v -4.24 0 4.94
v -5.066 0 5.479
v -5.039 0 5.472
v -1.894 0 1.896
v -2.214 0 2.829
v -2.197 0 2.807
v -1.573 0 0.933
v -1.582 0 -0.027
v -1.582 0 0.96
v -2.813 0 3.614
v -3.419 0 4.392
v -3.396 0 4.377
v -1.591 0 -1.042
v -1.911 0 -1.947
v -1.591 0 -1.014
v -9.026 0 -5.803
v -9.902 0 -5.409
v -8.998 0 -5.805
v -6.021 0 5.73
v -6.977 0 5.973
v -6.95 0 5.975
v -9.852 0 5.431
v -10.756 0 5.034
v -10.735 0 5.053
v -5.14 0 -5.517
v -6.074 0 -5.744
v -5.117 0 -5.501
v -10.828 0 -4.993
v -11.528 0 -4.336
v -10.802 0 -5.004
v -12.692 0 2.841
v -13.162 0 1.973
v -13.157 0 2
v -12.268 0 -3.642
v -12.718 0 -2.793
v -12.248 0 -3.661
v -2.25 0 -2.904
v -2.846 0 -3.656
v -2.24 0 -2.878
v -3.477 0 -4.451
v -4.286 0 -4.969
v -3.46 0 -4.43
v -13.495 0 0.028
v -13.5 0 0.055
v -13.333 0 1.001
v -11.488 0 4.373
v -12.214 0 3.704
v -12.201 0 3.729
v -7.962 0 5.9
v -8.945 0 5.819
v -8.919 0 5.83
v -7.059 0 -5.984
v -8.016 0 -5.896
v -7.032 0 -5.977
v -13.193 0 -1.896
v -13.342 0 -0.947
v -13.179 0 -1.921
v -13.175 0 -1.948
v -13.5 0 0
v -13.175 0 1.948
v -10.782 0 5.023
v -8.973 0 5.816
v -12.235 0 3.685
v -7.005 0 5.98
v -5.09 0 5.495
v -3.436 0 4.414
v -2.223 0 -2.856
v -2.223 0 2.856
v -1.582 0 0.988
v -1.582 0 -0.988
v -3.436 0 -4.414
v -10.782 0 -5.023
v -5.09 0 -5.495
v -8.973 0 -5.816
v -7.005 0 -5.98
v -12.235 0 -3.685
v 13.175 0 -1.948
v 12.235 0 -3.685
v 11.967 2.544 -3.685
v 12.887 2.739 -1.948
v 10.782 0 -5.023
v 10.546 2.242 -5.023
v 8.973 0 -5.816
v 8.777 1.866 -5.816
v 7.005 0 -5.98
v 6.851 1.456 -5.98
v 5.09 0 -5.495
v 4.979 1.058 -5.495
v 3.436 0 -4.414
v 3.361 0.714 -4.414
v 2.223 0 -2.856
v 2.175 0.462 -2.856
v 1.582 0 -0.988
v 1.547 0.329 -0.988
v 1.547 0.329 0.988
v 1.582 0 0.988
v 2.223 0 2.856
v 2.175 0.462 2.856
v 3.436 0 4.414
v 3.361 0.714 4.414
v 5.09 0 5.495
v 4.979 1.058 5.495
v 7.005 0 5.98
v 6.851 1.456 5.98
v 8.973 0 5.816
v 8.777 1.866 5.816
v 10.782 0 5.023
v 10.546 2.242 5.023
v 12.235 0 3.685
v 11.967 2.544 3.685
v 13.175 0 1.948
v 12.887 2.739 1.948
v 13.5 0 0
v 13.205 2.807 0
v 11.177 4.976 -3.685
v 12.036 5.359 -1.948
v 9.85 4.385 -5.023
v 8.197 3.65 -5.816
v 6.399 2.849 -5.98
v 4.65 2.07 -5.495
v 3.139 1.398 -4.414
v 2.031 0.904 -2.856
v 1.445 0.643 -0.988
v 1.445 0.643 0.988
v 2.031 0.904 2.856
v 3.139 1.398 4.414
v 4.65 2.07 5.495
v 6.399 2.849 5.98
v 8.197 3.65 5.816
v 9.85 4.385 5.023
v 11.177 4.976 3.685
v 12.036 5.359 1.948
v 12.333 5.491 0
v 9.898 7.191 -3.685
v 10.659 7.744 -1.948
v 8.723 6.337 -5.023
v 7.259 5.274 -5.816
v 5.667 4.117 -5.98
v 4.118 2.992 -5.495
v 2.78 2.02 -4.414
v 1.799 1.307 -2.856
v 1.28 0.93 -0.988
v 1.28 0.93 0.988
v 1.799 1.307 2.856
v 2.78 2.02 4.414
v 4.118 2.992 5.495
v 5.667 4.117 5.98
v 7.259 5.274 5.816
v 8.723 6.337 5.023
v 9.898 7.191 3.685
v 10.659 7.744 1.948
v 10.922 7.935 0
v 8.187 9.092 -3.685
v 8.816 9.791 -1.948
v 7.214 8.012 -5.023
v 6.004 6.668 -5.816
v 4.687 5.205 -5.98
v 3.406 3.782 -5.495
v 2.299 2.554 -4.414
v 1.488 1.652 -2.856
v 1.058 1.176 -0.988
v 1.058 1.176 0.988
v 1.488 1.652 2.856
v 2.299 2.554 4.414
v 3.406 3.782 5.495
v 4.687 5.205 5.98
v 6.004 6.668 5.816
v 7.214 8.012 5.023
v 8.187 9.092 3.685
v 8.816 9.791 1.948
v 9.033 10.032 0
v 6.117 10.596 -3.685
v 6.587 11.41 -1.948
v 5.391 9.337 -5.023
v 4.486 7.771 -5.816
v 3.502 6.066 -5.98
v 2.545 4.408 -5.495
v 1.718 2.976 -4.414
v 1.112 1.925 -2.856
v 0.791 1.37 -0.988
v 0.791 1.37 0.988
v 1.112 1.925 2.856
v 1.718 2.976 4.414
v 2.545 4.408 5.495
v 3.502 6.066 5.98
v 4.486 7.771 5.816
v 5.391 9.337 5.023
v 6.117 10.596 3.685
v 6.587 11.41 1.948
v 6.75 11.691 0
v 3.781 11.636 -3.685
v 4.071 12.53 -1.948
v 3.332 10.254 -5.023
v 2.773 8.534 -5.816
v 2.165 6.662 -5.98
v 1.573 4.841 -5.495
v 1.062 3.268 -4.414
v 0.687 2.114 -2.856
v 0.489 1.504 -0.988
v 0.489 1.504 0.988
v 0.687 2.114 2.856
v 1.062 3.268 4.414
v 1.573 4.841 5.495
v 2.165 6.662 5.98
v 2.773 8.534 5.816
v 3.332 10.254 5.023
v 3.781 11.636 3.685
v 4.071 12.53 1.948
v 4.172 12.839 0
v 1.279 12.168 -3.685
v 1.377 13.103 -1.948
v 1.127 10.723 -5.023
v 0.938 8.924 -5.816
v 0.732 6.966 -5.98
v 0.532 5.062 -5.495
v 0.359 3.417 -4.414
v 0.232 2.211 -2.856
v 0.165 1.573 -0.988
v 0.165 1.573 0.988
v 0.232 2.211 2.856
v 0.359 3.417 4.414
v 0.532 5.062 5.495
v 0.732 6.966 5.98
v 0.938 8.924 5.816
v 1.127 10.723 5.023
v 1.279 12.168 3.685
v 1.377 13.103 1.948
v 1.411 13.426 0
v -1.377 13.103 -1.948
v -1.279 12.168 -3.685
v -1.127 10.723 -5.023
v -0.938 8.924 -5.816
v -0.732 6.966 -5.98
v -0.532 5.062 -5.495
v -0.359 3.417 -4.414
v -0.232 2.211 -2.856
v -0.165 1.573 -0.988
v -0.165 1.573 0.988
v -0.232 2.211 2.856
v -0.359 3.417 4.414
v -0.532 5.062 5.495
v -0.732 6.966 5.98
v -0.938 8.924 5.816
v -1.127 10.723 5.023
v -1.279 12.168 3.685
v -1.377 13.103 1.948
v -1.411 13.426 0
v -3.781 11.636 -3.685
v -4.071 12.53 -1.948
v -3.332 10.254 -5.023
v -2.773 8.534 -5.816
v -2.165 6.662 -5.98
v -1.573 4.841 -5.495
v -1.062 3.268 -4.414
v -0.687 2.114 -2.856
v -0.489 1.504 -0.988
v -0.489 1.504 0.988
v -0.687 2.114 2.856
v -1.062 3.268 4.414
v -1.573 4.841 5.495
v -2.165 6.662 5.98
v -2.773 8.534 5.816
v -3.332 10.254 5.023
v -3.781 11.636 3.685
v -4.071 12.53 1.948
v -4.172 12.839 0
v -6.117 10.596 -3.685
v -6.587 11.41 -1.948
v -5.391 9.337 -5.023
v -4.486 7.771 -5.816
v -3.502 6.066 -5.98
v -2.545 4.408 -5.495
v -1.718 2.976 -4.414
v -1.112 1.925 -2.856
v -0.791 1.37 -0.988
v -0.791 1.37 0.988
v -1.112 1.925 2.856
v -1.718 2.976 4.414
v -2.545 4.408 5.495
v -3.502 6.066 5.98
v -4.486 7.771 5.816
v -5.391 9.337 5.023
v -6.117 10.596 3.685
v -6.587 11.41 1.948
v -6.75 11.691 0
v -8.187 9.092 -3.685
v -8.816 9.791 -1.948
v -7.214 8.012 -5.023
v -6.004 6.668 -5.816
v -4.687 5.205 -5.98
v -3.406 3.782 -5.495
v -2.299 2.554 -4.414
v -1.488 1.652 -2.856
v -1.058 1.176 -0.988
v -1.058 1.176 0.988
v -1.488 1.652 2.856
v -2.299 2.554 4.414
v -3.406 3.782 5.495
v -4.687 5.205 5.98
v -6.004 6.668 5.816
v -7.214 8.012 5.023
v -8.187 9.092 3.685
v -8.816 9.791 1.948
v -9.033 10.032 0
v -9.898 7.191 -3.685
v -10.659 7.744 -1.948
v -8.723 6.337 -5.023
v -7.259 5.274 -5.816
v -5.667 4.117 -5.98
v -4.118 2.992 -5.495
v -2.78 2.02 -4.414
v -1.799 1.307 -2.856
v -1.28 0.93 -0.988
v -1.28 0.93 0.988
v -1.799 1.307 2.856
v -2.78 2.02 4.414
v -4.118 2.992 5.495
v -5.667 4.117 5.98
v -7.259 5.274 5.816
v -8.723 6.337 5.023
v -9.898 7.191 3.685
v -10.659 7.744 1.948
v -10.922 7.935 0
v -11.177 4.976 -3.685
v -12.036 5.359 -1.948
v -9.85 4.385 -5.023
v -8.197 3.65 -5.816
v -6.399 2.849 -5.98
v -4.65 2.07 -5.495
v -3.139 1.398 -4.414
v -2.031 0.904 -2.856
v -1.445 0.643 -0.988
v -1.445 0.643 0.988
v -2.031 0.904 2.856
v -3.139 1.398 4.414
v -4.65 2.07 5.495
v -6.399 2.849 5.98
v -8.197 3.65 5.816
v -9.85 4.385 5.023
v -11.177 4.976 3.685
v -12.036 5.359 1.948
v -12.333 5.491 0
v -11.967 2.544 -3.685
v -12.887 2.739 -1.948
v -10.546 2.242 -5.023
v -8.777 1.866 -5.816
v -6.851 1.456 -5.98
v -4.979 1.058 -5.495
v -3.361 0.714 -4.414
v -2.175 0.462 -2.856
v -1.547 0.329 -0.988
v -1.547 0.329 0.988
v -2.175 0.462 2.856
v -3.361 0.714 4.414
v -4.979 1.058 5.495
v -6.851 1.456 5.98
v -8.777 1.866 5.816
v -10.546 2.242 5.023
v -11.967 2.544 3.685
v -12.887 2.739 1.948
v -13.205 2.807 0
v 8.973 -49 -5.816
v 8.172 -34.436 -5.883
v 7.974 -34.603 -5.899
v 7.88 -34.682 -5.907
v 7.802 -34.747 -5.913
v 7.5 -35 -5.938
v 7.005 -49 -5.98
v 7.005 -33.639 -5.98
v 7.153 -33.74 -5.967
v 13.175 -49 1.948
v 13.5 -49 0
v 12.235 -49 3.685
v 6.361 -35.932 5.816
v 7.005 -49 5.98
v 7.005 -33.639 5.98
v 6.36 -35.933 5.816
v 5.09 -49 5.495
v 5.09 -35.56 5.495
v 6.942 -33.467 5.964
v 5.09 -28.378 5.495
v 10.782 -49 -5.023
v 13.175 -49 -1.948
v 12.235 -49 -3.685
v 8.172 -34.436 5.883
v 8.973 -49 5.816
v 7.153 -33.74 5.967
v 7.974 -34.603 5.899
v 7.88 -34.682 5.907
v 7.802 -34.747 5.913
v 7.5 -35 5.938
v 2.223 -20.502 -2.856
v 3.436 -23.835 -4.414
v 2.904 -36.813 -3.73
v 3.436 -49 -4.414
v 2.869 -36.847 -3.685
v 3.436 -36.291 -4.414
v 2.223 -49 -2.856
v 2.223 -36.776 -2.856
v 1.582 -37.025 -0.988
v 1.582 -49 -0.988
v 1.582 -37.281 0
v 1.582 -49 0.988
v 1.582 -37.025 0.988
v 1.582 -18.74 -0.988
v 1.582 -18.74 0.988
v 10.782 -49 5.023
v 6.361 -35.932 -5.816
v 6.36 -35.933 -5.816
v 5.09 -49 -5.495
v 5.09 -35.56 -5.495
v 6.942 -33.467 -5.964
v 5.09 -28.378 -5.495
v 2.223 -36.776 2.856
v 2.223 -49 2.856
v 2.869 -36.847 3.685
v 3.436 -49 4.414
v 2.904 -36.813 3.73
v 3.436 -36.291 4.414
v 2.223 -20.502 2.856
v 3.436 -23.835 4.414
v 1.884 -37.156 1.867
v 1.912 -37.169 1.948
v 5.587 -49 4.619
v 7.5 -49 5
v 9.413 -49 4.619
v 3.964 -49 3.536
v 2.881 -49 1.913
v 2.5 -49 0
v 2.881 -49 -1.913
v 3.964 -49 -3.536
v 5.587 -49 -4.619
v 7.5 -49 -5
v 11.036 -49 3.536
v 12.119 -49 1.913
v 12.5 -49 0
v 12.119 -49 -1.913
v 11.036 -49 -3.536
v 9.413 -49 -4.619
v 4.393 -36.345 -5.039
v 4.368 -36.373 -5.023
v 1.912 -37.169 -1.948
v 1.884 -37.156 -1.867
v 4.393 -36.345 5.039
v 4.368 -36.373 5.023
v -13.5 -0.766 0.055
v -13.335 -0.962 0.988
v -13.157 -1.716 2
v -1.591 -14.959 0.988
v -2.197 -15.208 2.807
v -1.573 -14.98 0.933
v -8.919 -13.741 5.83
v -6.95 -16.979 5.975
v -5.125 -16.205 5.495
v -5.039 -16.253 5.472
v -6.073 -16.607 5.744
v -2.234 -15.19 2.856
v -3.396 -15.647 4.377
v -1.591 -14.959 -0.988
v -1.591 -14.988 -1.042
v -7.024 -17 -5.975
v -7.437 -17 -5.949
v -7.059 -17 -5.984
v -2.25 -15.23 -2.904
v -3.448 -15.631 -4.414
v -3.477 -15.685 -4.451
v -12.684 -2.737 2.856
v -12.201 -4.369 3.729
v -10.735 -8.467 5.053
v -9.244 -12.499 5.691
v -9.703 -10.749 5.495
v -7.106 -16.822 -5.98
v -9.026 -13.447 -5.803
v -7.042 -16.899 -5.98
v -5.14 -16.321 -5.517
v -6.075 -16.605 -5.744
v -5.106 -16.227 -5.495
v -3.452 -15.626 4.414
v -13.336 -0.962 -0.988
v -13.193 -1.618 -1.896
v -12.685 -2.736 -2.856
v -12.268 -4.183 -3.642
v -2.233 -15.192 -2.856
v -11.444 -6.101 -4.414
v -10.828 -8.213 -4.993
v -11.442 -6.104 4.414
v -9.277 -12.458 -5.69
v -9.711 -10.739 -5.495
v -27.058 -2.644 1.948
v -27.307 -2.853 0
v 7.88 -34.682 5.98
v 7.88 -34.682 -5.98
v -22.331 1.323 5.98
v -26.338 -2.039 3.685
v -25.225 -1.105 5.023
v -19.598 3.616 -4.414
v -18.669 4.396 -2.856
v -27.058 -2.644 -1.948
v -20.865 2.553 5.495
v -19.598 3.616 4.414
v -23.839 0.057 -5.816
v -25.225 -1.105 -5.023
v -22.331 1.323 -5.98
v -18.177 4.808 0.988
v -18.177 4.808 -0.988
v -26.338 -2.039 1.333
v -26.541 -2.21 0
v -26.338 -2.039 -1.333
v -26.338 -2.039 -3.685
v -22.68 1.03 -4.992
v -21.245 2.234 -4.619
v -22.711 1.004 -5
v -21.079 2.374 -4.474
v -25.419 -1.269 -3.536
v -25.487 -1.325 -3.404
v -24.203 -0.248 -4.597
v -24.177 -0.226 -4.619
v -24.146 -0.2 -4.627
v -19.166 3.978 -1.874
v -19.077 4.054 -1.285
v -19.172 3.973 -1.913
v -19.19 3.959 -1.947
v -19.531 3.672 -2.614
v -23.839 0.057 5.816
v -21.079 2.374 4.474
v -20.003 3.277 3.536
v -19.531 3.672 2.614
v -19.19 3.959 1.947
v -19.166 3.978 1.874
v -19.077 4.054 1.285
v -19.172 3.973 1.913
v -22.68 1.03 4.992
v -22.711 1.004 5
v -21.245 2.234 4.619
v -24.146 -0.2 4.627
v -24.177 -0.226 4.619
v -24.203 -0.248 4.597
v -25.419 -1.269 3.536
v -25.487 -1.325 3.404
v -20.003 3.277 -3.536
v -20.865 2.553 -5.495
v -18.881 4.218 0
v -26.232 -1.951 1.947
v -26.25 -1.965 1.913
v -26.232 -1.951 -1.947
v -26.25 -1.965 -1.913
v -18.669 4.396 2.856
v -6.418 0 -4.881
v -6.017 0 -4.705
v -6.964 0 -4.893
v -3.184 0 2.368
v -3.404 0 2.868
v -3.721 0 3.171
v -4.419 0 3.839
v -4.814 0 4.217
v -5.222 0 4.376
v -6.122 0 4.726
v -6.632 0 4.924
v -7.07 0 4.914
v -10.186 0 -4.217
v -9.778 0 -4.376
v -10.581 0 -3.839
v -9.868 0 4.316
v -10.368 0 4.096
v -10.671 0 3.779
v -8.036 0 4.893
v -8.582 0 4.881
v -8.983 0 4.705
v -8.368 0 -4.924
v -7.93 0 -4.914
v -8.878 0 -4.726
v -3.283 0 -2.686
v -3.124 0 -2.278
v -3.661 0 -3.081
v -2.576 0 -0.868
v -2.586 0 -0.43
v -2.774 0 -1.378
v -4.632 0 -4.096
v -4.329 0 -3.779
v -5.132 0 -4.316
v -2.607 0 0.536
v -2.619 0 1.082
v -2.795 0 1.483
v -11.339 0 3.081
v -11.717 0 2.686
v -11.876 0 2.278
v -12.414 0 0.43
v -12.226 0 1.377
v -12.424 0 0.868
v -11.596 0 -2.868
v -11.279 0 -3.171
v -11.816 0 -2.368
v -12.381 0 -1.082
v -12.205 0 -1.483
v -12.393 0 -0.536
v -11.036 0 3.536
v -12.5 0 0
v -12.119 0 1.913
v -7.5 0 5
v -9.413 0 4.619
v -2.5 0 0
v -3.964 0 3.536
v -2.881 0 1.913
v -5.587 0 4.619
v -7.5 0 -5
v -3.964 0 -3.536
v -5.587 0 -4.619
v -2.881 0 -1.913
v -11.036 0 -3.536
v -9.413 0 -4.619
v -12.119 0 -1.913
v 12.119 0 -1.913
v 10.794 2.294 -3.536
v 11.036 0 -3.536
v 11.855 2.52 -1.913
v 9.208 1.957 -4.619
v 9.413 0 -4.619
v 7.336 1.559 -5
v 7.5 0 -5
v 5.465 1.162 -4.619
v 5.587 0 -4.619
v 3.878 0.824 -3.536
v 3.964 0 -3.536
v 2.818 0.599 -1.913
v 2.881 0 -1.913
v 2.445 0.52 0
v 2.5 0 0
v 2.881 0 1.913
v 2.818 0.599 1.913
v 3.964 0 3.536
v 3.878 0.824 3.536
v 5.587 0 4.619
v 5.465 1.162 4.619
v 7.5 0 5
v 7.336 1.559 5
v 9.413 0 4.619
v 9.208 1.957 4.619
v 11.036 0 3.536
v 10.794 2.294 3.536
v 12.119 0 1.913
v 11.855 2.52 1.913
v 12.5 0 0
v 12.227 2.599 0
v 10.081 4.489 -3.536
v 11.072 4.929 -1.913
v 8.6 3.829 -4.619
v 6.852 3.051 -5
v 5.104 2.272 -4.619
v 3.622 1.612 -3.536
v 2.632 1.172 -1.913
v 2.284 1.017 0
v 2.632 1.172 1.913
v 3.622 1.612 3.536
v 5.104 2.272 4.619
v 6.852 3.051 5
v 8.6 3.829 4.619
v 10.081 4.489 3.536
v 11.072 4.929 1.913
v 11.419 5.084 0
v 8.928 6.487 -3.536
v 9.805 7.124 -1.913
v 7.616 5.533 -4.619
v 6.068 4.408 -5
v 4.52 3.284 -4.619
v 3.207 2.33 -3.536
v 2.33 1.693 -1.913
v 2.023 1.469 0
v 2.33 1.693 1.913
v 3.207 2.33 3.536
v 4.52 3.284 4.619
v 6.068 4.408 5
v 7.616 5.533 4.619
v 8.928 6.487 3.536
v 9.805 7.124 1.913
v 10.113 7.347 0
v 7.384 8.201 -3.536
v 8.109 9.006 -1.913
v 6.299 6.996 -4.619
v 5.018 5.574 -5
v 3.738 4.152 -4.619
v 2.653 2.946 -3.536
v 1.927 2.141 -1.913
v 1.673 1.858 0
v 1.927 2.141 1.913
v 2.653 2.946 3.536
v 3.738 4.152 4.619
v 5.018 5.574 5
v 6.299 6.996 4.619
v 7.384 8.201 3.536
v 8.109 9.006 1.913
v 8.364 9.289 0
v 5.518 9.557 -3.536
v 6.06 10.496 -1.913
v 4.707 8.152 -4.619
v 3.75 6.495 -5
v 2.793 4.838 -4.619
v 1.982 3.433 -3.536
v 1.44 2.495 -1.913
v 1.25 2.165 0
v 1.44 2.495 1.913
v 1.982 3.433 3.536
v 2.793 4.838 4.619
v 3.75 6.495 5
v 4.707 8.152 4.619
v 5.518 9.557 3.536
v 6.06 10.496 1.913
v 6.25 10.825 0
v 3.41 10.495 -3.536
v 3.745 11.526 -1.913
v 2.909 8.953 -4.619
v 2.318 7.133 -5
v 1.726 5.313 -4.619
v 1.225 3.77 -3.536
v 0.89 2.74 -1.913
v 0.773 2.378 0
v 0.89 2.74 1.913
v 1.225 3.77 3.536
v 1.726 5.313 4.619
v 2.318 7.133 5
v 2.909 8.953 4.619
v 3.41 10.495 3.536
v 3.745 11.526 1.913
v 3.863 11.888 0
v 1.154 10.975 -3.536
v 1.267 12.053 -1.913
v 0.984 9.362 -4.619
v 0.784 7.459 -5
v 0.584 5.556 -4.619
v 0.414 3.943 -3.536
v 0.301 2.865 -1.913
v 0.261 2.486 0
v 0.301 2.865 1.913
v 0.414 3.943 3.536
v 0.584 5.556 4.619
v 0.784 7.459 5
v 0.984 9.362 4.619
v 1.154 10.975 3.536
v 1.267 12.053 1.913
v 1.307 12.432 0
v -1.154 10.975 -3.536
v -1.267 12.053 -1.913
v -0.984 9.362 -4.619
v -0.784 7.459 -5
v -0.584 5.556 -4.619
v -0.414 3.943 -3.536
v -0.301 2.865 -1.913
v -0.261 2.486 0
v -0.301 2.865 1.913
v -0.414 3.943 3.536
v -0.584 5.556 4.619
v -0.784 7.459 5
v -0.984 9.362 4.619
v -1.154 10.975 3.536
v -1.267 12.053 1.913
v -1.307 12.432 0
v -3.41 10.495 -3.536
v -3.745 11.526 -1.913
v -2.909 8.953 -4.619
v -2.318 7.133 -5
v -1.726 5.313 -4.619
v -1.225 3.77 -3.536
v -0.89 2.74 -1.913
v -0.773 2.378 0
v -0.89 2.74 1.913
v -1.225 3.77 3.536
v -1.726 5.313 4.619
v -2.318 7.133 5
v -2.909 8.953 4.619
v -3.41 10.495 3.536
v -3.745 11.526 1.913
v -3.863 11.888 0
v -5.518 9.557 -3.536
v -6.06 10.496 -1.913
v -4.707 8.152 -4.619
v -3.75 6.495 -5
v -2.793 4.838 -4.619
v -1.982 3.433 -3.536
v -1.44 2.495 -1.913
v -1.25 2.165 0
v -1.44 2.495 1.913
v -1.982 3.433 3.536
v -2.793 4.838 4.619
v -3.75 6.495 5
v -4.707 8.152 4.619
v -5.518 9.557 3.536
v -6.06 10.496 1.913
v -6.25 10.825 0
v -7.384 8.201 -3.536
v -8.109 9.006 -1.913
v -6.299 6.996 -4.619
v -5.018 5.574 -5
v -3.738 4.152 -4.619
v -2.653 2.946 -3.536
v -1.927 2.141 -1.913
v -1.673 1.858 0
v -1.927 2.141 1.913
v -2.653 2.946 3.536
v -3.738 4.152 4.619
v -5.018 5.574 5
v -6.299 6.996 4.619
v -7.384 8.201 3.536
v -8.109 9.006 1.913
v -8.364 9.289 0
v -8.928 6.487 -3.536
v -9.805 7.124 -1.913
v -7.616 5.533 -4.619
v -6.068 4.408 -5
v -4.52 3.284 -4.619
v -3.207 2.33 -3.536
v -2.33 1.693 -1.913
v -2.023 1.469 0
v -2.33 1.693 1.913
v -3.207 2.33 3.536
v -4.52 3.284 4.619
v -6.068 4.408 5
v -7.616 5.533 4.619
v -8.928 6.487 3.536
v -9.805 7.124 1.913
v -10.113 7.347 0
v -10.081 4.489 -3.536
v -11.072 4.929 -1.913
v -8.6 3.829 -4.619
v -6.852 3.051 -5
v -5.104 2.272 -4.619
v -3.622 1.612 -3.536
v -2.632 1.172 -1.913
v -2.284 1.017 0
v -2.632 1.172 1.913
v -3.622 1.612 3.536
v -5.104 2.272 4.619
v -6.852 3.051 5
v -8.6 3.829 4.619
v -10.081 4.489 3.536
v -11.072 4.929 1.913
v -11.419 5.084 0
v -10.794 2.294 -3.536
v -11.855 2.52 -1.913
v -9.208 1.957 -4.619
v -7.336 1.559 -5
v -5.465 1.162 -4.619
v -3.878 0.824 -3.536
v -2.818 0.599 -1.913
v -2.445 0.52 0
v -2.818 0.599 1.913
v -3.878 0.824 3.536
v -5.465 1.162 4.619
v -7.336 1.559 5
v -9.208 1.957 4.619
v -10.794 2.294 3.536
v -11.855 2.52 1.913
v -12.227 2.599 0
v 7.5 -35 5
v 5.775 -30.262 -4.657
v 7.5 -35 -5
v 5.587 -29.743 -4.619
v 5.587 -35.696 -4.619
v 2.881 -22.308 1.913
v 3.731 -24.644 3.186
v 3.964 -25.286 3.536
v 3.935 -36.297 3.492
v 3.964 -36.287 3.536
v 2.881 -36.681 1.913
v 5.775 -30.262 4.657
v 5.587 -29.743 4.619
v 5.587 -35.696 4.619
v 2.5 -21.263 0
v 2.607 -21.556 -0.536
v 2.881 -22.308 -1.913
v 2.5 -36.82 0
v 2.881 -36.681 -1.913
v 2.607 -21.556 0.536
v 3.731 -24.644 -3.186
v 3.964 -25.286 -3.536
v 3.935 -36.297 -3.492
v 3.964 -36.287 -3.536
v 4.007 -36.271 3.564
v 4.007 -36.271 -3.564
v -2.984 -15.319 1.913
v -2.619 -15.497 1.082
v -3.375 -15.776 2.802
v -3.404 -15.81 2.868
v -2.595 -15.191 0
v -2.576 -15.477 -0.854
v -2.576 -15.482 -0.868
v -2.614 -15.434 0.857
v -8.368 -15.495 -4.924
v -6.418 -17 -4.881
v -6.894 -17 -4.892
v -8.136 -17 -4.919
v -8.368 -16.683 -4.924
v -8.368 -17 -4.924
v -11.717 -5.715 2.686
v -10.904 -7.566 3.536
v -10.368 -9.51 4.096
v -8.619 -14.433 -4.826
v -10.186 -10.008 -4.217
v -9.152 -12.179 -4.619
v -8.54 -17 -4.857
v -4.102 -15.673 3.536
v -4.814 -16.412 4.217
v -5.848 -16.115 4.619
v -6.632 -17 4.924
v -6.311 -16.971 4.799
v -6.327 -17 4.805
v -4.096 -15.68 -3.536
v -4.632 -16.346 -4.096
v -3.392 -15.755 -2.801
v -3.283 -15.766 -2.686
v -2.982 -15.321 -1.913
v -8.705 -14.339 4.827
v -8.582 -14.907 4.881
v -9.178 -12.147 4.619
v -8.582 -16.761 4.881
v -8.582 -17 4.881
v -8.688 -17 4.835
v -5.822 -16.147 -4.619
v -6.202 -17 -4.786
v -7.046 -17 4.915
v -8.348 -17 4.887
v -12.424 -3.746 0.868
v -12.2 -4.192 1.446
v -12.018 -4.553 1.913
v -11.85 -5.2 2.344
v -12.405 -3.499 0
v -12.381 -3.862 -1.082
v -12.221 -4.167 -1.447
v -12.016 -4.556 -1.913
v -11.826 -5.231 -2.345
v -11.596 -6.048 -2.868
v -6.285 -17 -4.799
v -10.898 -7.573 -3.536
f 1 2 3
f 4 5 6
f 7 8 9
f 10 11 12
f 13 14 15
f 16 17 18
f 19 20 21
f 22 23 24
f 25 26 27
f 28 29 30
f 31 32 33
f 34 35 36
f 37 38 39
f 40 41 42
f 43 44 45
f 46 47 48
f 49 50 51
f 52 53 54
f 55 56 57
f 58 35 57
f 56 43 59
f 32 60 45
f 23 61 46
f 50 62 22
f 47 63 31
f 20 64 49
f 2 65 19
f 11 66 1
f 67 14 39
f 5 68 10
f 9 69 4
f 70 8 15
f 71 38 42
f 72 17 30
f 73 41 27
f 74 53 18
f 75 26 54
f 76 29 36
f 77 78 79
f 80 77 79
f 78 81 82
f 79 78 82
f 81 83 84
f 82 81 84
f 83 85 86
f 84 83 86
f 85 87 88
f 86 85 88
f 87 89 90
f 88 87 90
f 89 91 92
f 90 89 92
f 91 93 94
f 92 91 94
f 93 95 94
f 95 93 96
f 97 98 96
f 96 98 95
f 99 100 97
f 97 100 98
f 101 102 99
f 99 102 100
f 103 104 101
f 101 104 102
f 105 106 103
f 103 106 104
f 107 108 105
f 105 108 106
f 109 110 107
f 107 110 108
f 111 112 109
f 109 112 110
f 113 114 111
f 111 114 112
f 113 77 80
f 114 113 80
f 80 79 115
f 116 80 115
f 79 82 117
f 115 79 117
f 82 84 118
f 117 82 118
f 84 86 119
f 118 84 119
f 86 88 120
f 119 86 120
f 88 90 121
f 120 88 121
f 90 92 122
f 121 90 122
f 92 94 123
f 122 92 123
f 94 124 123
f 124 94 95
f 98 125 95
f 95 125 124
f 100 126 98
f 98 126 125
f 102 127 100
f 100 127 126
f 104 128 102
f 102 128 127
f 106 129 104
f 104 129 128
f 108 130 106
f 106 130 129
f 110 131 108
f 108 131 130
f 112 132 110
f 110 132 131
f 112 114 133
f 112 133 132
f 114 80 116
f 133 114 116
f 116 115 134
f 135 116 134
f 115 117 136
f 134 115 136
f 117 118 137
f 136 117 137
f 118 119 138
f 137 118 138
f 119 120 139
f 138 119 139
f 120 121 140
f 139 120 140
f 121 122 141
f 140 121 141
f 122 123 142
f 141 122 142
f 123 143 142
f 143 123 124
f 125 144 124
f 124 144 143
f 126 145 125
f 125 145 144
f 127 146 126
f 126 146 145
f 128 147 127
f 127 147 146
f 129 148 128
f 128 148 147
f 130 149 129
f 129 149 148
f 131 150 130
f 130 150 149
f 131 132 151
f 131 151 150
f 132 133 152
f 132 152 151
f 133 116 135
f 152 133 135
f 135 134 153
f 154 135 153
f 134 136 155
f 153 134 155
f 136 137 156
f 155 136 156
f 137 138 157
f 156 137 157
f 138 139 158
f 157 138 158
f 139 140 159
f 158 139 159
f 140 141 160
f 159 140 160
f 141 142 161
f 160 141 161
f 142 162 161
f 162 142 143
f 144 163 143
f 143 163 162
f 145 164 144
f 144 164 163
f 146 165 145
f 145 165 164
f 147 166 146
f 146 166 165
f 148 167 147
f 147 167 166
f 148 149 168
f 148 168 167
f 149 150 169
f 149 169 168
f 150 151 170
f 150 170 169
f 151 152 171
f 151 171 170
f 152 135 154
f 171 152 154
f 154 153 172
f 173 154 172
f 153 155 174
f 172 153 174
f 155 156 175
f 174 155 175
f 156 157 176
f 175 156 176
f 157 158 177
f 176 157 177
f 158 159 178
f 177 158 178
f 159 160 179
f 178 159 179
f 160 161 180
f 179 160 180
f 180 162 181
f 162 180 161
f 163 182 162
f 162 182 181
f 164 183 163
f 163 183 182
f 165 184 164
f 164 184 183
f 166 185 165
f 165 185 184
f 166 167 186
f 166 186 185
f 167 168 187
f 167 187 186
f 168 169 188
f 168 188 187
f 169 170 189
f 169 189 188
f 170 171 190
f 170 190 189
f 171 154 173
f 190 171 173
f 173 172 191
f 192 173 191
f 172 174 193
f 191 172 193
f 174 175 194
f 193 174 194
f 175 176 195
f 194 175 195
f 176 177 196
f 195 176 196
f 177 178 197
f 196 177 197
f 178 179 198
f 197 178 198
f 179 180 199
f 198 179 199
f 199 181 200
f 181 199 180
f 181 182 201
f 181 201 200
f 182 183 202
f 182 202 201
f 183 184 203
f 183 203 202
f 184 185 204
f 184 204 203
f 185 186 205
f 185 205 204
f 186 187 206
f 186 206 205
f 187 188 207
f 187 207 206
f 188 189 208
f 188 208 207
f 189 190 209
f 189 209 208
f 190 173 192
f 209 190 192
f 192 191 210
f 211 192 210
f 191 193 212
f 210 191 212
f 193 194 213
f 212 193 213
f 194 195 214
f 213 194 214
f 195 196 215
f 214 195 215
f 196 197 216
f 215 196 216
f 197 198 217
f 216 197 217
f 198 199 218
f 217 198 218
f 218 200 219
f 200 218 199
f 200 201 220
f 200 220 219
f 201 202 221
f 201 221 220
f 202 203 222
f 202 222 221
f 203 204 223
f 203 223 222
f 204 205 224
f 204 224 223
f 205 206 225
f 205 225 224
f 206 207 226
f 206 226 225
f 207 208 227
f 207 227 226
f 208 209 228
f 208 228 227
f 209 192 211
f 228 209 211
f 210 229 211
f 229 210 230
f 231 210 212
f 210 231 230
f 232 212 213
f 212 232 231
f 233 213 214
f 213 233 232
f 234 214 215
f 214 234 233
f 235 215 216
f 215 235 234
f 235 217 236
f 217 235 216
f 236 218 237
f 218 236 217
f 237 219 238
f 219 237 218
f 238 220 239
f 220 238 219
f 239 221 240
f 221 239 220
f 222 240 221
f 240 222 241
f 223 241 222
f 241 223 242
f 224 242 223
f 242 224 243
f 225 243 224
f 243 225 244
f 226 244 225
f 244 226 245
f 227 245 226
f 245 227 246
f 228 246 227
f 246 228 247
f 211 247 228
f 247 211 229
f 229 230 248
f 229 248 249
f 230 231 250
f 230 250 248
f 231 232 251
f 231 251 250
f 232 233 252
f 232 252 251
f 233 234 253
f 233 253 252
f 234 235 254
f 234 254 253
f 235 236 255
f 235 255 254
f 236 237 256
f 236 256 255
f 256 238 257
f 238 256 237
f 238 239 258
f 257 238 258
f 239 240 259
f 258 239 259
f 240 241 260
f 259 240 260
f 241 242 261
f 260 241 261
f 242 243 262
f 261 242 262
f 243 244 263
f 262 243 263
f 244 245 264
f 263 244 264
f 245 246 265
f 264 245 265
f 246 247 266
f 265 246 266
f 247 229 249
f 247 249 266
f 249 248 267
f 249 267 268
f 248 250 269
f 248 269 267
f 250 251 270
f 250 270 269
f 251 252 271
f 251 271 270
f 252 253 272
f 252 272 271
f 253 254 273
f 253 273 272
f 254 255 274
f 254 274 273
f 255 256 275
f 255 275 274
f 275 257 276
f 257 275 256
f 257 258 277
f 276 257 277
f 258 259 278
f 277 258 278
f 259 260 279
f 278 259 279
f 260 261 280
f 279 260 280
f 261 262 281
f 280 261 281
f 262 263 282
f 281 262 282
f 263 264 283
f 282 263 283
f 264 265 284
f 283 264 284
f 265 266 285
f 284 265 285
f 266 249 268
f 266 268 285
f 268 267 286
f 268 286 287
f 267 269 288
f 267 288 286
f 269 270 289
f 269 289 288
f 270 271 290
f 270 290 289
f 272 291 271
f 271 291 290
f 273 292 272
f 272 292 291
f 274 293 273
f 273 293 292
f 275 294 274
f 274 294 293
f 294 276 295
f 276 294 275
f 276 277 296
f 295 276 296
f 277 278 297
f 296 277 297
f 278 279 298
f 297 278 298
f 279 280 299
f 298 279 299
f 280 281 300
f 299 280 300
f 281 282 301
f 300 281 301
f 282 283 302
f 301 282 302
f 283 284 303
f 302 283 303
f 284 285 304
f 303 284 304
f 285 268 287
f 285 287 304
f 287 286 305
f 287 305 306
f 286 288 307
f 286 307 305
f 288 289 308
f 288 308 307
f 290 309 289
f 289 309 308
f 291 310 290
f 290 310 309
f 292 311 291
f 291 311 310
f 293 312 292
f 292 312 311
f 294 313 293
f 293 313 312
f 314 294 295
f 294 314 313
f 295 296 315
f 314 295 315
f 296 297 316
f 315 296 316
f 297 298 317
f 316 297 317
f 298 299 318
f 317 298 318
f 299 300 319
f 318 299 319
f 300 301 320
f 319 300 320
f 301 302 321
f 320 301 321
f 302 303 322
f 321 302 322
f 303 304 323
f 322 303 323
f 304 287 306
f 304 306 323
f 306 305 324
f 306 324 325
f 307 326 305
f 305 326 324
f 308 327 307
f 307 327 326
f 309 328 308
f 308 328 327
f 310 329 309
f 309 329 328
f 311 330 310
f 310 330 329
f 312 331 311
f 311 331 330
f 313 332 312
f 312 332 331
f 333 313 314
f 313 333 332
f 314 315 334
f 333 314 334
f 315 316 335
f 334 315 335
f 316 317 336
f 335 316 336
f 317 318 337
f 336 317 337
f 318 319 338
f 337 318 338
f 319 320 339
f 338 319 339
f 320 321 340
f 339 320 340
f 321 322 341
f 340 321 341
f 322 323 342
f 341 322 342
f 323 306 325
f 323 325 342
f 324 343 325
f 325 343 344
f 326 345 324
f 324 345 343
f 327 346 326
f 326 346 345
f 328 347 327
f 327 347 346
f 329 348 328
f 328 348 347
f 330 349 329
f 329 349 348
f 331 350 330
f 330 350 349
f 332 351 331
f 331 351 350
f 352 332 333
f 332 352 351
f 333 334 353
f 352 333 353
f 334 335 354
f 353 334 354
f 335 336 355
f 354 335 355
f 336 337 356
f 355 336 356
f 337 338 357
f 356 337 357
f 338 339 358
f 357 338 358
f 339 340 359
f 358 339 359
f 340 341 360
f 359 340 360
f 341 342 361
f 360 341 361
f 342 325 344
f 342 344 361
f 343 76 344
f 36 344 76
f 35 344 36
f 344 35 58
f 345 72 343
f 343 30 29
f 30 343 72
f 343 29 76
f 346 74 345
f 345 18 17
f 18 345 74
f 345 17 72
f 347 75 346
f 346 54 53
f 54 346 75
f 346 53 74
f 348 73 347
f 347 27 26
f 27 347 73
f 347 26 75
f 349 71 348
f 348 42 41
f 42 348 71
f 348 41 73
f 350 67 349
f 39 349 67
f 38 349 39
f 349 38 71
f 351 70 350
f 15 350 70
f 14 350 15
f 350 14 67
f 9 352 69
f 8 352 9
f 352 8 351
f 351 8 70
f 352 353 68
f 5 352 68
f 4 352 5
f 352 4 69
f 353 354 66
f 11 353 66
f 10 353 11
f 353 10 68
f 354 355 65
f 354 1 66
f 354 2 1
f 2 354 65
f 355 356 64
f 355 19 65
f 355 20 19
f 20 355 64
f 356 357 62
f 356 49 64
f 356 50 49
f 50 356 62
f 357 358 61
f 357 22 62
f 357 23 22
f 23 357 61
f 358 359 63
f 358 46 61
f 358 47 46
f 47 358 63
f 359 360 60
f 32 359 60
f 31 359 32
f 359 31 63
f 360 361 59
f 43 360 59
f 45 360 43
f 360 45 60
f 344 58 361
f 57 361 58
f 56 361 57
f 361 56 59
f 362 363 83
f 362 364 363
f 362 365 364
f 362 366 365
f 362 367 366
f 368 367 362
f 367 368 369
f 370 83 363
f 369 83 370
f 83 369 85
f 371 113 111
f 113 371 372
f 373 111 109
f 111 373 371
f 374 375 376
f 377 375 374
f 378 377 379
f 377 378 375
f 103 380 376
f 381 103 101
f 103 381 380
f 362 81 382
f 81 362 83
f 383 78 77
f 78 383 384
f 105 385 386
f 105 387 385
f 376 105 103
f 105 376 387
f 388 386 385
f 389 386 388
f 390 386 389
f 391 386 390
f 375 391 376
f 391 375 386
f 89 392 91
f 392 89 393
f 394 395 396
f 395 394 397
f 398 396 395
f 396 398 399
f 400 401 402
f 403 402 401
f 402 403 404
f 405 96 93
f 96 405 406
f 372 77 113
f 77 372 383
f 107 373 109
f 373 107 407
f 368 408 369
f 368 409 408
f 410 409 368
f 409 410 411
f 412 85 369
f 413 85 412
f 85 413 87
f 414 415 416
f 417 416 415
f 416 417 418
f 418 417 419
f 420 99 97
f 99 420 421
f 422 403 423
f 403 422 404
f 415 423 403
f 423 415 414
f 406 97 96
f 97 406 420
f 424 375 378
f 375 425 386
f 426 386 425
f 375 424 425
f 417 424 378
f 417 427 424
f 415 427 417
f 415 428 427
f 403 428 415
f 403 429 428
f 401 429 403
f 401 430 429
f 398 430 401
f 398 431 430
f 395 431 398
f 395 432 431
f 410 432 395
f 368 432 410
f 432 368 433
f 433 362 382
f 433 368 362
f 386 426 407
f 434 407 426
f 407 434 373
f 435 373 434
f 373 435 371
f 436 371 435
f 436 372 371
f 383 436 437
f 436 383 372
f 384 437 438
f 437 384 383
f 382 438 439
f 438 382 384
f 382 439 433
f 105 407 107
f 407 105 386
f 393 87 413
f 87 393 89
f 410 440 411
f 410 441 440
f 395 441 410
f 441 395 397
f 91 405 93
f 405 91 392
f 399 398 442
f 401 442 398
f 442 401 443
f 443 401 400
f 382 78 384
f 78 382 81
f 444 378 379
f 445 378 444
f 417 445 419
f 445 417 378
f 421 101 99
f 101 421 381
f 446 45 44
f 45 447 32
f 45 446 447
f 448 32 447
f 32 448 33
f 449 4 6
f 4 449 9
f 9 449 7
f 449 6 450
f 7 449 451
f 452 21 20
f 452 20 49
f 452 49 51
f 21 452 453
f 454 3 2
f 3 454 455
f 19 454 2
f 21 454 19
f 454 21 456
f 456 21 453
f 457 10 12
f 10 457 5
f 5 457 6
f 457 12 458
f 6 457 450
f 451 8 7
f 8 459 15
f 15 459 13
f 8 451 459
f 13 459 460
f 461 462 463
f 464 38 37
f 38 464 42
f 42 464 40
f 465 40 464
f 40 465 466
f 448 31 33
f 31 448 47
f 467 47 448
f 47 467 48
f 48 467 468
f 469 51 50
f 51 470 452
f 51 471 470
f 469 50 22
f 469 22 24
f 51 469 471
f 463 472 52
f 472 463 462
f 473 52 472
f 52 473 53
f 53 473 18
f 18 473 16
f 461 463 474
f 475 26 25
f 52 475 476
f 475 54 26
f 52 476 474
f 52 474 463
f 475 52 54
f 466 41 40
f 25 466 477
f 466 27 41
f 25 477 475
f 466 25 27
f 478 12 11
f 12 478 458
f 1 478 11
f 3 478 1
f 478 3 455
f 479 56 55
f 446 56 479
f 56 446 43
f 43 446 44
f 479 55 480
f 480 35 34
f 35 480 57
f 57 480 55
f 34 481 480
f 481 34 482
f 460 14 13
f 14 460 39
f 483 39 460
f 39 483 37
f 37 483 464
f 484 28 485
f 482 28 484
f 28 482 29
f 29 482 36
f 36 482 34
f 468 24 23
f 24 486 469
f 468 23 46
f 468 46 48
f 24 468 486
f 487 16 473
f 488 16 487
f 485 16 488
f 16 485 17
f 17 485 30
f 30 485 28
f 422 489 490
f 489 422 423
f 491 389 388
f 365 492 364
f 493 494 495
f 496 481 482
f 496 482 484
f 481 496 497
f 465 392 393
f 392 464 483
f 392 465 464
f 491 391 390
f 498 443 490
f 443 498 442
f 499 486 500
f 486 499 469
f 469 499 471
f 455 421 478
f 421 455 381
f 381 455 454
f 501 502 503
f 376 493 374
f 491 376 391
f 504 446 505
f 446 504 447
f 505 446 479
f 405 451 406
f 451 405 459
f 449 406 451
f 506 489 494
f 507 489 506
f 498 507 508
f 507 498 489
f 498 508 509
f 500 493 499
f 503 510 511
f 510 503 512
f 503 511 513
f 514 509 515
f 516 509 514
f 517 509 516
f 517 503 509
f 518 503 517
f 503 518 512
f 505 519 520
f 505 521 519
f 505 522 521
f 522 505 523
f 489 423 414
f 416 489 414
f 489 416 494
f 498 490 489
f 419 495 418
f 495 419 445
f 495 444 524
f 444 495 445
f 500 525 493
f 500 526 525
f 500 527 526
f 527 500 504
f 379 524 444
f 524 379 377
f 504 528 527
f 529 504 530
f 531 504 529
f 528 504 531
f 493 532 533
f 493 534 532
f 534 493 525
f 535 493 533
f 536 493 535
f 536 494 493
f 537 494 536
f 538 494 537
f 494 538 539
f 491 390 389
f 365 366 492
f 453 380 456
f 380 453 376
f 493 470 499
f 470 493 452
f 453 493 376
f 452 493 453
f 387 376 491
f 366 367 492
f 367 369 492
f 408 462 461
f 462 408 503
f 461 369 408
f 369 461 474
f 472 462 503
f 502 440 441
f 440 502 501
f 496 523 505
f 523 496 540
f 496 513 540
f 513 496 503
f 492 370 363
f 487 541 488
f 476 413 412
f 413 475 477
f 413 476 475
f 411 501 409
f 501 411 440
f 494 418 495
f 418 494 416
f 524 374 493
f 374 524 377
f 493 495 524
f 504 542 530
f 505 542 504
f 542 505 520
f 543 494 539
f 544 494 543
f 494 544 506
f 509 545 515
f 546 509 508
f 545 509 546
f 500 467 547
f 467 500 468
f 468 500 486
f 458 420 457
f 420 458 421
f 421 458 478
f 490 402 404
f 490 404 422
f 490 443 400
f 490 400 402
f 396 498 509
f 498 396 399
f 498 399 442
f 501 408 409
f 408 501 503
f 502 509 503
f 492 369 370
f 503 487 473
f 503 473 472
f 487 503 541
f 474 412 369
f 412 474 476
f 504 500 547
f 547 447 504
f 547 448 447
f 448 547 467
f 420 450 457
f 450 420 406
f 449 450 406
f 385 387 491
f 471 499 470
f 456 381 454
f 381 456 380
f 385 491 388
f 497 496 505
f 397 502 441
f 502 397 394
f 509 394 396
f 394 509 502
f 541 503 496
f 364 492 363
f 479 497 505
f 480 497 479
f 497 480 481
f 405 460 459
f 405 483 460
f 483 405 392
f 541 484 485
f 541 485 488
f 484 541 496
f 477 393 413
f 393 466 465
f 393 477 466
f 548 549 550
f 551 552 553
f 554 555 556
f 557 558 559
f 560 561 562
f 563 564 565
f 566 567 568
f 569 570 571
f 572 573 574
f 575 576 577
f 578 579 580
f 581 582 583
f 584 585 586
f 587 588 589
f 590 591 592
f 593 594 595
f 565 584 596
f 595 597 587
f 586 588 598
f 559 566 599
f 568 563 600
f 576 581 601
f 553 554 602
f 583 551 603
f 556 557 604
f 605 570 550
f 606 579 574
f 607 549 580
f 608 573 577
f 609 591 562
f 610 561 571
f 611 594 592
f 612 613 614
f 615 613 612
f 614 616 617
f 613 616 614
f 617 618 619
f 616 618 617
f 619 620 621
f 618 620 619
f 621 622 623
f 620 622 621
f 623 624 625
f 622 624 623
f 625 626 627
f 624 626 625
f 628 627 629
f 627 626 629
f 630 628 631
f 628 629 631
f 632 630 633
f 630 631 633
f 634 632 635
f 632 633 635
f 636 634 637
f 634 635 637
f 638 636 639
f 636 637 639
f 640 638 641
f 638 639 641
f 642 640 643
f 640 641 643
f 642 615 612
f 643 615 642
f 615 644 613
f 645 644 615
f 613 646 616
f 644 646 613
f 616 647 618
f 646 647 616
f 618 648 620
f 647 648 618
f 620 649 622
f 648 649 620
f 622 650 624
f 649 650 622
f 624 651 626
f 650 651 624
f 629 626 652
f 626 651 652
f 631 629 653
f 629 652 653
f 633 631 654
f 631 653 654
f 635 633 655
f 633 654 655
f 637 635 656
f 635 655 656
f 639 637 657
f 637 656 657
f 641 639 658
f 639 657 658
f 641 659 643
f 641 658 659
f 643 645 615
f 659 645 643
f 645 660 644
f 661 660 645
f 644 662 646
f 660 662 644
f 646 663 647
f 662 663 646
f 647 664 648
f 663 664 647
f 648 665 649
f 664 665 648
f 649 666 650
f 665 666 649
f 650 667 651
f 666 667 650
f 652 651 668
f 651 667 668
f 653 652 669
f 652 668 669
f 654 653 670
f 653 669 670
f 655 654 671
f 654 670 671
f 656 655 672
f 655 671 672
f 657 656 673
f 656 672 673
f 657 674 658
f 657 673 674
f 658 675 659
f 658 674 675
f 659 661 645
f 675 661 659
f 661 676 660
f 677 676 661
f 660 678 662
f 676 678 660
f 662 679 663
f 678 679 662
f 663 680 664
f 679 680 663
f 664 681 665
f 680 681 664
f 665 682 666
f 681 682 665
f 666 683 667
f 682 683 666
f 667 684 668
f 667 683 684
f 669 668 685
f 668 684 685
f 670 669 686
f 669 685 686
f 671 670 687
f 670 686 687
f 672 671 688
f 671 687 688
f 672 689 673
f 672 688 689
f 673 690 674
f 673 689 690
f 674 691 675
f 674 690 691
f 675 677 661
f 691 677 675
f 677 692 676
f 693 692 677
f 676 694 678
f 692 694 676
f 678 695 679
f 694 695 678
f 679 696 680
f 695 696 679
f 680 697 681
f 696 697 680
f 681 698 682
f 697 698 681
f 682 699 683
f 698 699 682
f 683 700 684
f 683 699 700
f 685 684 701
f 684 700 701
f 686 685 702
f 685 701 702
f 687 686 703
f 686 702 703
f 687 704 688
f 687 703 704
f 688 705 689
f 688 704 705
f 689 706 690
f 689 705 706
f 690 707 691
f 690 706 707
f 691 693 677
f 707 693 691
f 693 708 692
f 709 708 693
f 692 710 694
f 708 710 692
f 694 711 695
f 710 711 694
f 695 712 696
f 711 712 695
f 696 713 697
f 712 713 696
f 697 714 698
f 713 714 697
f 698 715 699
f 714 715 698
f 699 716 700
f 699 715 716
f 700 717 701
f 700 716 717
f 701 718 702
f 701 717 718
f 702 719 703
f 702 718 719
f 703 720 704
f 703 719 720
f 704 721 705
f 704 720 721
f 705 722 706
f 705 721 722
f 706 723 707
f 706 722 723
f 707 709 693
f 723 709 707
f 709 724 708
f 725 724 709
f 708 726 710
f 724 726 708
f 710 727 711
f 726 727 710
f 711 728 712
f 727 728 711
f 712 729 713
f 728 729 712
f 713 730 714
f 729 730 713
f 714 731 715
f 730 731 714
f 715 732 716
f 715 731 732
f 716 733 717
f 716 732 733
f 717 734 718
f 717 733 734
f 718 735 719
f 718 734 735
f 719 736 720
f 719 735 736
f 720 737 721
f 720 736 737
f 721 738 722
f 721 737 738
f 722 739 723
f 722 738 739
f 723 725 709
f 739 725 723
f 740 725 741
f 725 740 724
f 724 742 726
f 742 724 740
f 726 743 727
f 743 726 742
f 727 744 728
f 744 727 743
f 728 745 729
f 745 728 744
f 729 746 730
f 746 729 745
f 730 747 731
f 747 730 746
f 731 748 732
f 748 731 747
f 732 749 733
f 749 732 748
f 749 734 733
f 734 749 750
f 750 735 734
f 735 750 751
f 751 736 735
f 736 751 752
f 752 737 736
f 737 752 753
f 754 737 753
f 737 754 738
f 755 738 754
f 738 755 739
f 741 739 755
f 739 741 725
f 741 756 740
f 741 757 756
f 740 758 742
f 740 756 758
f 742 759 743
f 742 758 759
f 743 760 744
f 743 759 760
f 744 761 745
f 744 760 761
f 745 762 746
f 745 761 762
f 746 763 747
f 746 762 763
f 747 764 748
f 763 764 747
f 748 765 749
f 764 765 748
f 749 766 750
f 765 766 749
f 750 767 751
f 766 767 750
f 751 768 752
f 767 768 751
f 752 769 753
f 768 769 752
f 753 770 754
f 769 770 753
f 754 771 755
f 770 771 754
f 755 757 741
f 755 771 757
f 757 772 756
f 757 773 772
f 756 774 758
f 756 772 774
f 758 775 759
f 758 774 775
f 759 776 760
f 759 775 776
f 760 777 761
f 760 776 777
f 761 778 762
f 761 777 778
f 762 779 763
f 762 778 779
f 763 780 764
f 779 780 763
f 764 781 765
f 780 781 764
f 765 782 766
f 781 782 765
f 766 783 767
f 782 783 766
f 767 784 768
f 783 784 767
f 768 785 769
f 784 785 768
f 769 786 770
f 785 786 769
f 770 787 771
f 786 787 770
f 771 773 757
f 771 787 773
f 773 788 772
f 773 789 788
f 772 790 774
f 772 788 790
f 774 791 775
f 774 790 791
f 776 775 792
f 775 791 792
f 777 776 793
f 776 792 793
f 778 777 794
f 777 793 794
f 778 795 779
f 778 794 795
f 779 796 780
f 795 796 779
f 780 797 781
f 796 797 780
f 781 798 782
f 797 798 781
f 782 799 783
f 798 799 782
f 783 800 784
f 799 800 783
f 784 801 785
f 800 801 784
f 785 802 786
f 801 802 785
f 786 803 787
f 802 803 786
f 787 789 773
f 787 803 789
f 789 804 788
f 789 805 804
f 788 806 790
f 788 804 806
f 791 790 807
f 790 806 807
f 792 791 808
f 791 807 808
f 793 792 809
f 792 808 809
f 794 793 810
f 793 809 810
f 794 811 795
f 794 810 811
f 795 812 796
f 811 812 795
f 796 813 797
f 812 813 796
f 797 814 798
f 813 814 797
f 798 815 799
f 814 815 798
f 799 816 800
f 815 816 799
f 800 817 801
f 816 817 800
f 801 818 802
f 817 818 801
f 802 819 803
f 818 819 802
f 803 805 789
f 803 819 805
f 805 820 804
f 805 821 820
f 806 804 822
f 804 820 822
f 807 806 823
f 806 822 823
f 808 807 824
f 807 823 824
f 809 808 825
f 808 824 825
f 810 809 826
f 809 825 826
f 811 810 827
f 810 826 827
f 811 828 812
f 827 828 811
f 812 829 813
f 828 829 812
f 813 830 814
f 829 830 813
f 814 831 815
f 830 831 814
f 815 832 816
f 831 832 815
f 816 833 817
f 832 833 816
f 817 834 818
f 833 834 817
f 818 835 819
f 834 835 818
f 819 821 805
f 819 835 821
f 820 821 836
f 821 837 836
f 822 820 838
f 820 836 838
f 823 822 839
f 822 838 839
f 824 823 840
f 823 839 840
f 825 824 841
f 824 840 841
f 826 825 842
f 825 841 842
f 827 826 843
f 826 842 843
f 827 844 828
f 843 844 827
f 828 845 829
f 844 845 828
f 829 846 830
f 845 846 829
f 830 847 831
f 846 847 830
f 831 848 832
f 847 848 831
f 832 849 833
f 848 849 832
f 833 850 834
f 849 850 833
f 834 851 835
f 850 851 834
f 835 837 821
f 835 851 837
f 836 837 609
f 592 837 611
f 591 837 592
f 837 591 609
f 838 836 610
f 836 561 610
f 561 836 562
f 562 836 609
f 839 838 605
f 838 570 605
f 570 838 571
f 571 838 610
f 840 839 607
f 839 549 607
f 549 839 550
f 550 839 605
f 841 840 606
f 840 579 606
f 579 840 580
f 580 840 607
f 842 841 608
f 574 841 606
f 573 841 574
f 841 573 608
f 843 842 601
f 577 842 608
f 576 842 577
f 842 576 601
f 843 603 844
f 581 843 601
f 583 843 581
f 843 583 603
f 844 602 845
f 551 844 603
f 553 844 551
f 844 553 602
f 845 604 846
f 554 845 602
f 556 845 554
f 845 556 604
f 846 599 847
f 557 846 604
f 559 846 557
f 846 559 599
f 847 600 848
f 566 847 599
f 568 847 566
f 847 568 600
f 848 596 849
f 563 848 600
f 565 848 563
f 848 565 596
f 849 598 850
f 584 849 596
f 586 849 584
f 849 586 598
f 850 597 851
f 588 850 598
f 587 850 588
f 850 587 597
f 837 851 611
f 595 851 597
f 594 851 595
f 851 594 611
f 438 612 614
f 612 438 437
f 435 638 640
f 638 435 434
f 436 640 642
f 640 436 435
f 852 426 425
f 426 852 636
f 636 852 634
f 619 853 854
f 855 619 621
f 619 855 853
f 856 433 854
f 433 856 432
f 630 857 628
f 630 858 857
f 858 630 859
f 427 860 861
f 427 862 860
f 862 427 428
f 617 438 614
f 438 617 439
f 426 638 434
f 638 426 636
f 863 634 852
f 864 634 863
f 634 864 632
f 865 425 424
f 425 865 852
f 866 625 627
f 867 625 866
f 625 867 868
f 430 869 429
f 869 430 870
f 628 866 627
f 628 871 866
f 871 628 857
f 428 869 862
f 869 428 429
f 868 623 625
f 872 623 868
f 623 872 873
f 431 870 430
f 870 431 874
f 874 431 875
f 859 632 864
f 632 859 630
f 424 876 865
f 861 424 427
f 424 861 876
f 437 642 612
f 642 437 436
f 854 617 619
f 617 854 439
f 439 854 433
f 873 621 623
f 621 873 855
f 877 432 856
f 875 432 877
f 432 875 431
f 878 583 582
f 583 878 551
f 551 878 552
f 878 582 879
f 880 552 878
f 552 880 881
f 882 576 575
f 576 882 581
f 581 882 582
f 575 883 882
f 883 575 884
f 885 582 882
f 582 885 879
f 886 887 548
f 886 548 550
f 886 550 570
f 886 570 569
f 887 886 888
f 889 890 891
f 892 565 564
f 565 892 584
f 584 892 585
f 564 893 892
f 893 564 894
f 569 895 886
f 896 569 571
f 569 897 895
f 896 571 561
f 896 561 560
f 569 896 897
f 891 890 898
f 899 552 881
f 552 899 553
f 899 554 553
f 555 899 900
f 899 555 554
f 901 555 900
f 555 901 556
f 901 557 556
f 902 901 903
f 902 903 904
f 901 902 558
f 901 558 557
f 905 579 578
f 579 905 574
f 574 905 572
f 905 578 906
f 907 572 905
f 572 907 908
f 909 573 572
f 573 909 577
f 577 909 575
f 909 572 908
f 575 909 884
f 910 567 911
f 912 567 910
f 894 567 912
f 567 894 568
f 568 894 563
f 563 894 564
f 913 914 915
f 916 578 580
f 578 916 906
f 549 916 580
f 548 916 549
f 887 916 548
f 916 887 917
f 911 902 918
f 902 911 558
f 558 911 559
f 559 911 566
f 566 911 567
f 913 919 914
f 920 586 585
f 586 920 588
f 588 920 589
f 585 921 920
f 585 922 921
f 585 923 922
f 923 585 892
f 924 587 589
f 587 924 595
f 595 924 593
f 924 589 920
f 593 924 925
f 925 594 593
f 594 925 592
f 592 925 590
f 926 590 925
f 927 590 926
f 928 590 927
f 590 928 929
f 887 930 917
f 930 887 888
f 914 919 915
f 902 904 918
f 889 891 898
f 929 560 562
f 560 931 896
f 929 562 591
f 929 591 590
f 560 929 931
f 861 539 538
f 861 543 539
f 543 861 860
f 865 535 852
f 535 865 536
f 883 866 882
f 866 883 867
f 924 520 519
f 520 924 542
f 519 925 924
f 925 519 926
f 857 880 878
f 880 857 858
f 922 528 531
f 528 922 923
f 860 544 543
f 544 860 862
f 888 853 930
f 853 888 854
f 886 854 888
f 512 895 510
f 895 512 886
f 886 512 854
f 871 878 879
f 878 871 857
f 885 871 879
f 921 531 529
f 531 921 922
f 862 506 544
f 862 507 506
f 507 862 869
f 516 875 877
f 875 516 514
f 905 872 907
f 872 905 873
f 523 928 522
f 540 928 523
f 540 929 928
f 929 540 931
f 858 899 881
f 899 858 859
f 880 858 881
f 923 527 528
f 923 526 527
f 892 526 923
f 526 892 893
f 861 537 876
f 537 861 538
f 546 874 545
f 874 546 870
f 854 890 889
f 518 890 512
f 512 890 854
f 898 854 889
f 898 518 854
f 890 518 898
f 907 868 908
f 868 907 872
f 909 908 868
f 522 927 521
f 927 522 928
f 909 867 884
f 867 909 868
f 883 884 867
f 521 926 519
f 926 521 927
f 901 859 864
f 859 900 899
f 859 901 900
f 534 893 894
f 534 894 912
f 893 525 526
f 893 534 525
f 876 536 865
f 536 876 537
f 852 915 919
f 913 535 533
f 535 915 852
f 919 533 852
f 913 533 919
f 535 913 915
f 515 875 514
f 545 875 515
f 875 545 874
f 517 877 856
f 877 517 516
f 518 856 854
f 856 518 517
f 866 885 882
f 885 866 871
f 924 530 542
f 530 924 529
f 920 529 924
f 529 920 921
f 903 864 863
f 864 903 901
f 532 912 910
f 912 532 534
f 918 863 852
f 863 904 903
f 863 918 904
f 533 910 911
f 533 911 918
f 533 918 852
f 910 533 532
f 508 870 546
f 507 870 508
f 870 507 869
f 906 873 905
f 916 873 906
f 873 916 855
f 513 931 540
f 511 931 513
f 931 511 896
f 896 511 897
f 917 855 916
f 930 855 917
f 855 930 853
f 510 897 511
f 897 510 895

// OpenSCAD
module tesla(tube_diameter = 10,out_large = 10,in_large = 10,angle_diameter=15){

rotate_extrude(angle=180)
translate([angle_diameter/2,0,0])
circle(d=tube_diameter);

translate([angle_diameter/2,0,0])
rotate([90,0,0])
cylinder(d=tube_diameter, h=39+out_large);

translate([-angle_diameter/2,0,0])
rotate([90,10,0])

cylinder(d=tube_diameter, h=17);

translate([7.5,-35,0])
rotate([90,0,-90-50])
cylinder(d=tube_diameter, h=37+in_large);
}
difference(){
tesla(12);
    tesla(10,11,11);
}
